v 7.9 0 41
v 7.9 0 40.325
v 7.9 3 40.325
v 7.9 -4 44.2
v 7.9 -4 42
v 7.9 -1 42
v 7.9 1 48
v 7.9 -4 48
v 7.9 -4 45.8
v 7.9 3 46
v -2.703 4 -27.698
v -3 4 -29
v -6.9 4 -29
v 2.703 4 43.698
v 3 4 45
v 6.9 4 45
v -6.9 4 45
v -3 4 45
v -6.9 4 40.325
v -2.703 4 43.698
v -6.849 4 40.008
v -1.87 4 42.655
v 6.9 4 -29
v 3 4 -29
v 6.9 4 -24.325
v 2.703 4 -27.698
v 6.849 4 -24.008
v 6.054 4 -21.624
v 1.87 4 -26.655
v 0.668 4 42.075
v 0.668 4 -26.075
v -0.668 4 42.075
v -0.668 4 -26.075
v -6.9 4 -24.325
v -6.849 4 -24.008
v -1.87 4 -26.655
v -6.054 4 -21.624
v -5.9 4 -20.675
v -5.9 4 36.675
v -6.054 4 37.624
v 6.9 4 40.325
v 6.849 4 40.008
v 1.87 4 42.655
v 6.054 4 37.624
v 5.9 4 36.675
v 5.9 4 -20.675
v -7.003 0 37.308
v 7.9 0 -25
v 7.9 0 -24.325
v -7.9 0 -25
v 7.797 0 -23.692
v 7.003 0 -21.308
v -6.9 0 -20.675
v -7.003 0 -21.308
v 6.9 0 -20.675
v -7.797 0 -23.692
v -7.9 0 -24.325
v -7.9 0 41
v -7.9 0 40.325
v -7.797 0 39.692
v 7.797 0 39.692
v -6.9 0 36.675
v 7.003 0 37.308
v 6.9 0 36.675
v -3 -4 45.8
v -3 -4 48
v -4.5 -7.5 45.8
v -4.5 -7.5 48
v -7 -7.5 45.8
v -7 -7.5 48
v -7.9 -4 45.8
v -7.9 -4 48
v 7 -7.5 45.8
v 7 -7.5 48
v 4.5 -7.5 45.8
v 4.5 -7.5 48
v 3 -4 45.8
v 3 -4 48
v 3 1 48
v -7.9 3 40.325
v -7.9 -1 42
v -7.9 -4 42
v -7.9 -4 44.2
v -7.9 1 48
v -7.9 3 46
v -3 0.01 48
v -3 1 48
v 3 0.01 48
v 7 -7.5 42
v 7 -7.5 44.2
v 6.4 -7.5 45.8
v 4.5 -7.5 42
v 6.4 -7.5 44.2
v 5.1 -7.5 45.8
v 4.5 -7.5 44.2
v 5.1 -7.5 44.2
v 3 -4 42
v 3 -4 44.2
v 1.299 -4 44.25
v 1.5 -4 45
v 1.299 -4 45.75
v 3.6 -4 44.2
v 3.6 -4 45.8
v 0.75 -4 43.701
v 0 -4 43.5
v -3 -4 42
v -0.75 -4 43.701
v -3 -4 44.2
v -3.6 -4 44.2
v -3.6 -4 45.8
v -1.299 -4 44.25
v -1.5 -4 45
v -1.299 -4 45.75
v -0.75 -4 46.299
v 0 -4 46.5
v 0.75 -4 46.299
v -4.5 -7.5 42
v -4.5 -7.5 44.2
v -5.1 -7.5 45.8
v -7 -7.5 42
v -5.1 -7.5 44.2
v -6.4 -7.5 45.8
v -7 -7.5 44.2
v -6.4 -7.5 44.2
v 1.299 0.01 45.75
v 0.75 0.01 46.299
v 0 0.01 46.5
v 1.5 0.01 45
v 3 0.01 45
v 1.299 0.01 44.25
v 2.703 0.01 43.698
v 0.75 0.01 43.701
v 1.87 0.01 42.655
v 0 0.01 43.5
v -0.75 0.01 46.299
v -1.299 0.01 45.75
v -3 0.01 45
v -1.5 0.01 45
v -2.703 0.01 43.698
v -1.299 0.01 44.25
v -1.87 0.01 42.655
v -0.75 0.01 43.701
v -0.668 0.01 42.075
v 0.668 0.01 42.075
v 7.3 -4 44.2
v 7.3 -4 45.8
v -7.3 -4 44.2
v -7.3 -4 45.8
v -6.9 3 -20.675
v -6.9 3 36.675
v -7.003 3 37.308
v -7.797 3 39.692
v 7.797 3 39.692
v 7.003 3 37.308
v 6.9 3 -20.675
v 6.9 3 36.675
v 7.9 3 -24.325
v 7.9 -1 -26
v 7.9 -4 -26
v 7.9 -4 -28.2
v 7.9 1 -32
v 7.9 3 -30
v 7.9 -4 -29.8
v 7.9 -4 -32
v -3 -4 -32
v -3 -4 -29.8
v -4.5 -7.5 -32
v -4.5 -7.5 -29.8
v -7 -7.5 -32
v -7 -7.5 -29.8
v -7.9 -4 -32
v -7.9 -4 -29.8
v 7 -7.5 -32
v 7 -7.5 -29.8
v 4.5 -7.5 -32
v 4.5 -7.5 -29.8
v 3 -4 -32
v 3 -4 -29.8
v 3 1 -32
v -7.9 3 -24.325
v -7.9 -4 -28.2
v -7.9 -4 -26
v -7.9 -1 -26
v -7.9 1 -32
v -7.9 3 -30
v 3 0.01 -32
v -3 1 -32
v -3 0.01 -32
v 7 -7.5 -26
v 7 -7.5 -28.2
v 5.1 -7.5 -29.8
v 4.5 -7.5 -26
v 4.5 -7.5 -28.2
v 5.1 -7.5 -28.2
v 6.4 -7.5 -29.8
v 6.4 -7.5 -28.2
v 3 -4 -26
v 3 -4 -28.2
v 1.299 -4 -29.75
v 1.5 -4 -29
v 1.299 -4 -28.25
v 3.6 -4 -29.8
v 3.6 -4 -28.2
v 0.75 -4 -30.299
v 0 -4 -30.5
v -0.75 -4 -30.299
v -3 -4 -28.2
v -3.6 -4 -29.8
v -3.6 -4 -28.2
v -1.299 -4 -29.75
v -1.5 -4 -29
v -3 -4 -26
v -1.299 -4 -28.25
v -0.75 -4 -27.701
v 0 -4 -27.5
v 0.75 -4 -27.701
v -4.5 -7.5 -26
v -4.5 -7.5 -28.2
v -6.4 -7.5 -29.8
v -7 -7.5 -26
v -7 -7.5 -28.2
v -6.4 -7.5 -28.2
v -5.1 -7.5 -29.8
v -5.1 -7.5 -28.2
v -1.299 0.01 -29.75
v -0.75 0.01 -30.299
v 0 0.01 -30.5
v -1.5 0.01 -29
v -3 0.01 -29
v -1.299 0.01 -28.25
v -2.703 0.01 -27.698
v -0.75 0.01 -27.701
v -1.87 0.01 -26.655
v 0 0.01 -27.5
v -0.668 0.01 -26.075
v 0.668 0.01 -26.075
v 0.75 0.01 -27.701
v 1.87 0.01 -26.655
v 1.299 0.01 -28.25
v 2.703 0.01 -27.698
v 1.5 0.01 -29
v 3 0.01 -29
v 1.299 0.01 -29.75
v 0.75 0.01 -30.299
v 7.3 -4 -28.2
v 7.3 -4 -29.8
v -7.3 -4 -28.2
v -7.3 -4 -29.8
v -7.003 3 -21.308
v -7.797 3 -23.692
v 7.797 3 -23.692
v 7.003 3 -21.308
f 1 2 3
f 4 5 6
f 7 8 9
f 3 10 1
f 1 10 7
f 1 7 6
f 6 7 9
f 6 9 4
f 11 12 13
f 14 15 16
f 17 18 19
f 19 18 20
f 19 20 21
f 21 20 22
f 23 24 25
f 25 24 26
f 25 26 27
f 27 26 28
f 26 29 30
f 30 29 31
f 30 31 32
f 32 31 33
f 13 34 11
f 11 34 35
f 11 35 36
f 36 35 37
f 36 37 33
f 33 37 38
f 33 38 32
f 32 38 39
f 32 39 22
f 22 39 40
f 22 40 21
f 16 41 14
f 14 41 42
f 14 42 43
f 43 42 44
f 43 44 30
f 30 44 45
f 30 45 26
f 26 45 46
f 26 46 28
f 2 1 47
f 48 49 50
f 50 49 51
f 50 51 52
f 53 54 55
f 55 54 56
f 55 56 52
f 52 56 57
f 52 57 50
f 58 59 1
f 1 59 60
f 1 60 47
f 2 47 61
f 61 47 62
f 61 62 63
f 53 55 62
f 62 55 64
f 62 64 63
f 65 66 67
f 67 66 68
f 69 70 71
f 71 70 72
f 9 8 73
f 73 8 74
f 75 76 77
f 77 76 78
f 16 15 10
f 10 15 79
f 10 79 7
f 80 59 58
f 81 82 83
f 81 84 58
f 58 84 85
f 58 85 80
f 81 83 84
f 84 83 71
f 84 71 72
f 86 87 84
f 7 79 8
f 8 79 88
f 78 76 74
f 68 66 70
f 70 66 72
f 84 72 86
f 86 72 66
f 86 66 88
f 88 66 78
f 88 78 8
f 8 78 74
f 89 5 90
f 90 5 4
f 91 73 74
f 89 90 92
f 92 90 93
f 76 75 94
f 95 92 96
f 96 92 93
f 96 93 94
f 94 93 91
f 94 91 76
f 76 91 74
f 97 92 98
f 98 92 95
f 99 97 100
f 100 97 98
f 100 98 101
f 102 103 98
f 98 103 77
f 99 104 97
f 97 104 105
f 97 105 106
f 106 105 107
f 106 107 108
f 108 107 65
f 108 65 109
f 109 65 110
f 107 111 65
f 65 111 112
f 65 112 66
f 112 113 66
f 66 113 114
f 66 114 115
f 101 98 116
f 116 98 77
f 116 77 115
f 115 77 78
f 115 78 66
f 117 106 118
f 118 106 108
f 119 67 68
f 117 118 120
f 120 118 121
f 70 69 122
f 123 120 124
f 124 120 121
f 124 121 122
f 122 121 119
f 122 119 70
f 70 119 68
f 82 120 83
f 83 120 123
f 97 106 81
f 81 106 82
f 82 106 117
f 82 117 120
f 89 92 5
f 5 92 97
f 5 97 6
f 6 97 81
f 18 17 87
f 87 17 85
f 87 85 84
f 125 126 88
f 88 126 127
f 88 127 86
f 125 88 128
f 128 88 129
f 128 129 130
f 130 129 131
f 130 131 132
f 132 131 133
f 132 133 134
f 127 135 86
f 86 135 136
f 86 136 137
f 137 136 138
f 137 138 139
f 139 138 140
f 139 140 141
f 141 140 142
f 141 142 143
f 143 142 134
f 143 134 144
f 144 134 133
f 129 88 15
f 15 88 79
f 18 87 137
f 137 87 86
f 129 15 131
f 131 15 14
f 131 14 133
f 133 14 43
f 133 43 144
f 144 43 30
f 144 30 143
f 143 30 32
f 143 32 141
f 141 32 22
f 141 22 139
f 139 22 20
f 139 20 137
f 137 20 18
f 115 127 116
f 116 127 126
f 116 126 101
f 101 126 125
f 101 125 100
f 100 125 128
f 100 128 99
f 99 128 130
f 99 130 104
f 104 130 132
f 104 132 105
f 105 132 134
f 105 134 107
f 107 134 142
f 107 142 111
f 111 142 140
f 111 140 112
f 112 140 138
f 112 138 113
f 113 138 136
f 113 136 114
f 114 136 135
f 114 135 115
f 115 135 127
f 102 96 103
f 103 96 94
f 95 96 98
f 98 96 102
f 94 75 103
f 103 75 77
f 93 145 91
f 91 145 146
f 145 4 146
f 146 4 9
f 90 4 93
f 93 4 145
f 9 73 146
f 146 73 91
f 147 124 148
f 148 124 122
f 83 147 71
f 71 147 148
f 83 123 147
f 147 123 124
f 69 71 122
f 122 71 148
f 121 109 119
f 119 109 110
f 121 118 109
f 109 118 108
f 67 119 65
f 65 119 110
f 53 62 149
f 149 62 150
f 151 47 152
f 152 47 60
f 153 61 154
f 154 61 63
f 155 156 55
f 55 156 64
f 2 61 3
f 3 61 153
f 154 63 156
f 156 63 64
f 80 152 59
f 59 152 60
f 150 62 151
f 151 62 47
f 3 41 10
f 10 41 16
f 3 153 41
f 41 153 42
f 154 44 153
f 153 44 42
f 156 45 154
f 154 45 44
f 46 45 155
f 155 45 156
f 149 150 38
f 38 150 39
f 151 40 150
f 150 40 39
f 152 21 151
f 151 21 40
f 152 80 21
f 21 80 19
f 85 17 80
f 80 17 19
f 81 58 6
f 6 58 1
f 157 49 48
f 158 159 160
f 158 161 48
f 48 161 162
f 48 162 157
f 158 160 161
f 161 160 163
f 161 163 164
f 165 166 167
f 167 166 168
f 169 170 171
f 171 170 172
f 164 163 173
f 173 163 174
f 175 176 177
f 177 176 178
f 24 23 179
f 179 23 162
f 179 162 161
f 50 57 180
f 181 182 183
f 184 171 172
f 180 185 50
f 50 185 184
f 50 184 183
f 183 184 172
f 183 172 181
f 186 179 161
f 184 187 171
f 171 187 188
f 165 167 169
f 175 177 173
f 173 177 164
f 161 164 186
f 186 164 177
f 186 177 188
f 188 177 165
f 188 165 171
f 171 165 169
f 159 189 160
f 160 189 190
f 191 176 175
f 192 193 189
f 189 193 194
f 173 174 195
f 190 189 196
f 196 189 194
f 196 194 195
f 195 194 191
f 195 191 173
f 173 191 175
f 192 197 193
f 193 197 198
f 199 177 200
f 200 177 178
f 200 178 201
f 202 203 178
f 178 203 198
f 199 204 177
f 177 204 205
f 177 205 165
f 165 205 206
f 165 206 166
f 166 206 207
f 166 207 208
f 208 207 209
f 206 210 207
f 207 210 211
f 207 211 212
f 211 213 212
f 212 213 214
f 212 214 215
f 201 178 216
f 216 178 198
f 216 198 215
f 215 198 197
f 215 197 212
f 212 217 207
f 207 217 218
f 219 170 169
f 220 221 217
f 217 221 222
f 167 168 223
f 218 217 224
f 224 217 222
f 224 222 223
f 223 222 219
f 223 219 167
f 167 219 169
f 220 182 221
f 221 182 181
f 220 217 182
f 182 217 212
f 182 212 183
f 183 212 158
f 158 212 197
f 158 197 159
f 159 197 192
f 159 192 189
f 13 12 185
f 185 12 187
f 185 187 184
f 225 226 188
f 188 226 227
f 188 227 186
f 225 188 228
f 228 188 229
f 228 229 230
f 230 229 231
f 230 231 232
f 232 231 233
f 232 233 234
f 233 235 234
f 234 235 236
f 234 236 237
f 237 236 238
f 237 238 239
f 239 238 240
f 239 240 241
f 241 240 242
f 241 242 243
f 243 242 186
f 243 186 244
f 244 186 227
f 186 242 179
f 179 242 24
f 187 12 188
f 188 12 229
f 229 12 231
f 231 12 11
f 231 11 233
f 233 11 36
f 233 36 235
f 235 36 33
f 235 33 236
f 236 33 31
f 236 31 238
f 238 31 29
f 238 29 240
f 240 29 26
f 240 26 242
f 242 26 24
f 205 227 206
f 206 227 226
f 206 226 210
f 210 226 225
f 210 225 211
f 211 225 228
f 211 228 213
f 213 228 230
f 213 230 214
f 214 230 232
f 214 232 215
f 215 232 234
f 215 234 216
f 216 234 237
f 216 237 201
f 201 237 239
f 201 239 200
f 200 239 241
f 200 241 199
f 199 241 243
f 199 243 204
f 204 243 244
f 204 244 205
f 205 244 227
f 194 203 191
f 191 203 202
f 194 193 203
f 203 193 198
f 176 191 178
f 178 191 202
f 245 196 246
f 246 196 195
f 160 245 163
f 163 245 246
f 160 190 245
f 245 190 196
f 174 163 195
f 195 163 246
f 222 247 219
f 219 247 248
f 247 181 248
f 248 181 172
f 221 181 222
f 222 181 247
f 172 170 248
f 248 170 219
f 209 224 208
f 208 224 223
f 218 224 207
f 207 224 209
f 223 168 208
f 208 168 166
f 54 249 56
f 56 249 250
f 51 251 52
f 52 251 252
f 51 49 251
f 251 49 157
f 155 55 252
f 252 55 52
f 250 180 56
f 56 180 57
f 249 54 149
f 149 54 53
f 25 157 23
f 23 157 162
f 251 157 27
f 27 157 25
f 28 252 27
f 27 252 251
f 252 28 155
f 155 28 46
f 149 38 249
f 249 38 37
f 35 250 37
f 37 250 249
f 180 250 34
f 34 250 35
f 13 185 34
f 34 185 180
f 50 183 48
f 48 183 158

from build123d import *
from build123d.topology import SkipClean

# Parameters (mm, degrees)
EXTRUDE_1_DEPTH     = 4
EXTRUDE_3_DEPTH     = 6
CHAMFER_1_SIZE      = 3
CUT_EXTRUDE_2_DEPTH = 3.99
CUT_EXTRUDE_3_REACH = 51.222
SKETCH_7_R          = 1.5
SKETCH_8_R          = 6
EXTRUDE_4_DEPTH     = 1
FILLET_1_R          = 0.5
SKETCH_9_R          = 5
CUT_EXTRUDE_4_DEPTH = 3
SKETCH_10_R         = 3.55
CUT_EXTRUDE_5_DEPTH = 3.6
CUT_EXTRUDE_6_DEPTH = 0.8
CUT_EXTRUDE_7_DEPTH = 50.986598204
FILLET_2_R          = 2
CHAMFER_2_SIZE      = 1


with BuildPart() as part:
    # ｽｹｯﾁ1 → ﾎﾞｽ - 押し出し1 (new body)
    with BuildSketch(Plane(origin=(0, 0, 0), x_dir=(1, 0, 0), z_dir=(0, 1, 0))):
        with BuildLine():
            Line((-7.9, 0), (-7.9, -48))
            Line((-7.9, -48), (7.9, -48))
            Line((7.9, -48), (7.9, 0))
            ThreePointArc((7.9, 0), (0, 7.9), (-7.9, 0))
        make_face()
    extrude(amount=EXTRUDE_1_DEPTH)

    # ｽｹｯﾁ4 → ﾎﾞｽ - 押し出し3 (add)
    with BuildSketch(Plane.XY.offset(48)):
        Polygon((-7, -7.5), (-4.5, -7.5), (-3, -4), (3, -4), (4.5, -7.5), (7, -7.5), (7.9, -4), (7.9, 0), (-7.9, 0), (-7.9, -4), align=None)
    extrude(amount=-EXTRUDE_3_DEPTH)

    # 面取り1
    chamfer_1_edges = [part.edges().sort_by_distance(p)[0] for p in [
        (0, 4, 48),
    ]]
    chamfer(chamfer_1_edges, length=CHAMFER_1_SIZE)

    # ｽｹｯﾁ6 → ｶｯﾄ - 押し出し2 (cut)
    with BuildSketch(Plane(origin=(0, 4, 0), x_dir=(1, 0, 0), z_dir=(0, 1, 0))):
        with BuildLine():
            Line((-3, -45), (-3, -49))
            Line((-3, -49), (3, -49))
            Line((3, -49), (3, -45))
            ThreePointArc((3, -45), (0, -42), (-3, -45))
        make_face()
    extrude(amount=-CUT_EXTRUDE_2_DEPTH, mode=Mode.SUBTRACT)

    # ｽｹｯﾁ7 → ｶｯﾄ - 押し出し3 (cut, up to next)
    with BuildSketch(Plane(origin=(0, 0.01, 0), x_dir=(1, 0, 0), z_dir=(0, 1, 0)), mode=Mode.PRIVATE) as cut_extrude_3_sk1:
        with Locations(Location((0, -45, 0), (0, 0, 270))):
            Circle(SKETCH_7_R)
    cut_extrude_3_tool1 = extrude(cut_extrude_3_sk1.sketch, amount=-CUT_EXTRUDE_3_REACH, mode=Mode.PRIVATE) & part.part
    add(cut_extrude_3_tool1.solids().sort_by_distance((0, 0.01, 45))[0], mode=Mode.SUBTRACT)

    # ｽｹｯﾁ8 → ﾎﾞｽ - 押し出し4 (add)
    with BuildSketch(Plane.XZ):
        with Locations(Location((0, 0, 0), (0, 0, 90))):
            Circle(SKETCH_8_R)
    extrude(amount=EXTRUDE_4_DEPTH)

    # ﾌｨﾚｯﾄ1
    fillet_1_edges = [part.edges().sort_by_distance(p)[0] for p in [
        (0, 0, -6),
    ]]
    fillet(fillet_1_edges, radius=FILLET_1_R)

    # ｽｹｯﾁ9 → ｶｯﾄ - 押し出し4 (cut)
    with BuildSketch(Plane(origin=(0, 4, 0), x_dir=(1, 0, 0), z_dir=(0, 1, 0))):
        with Locations(Location((0, 0, 0), (0, 0, 270))):
            Circle(SKETCH_9_R)
    extrude(amount=-CUT_EXTRUDE_4_DEPTH, mode=Mode.SUBTRACT)

    # ｽｹｯﾁ10 → ｶｯﾄ - 押し出し5 (cut)
    with BuildSketch(Plane(origin=(0, 1, 0), x_dir=(1, 0, 0), z_dir=(0, 1, 0))):
        with Locations(Location((0, 0, 0), (0, 0, 270))):
            Circle(SKETCH_10_R)
    extrude(amount=-CUT_EXTRUDE_5_DEPTH, mode=Mode.SUBTRACT)

    # ｽｹｯﾁ11 → ｶｯﾄ - 押し出し6 (cut, symmetric)
    with BuildSketch(Plane.XY.offset(45)):
        Polygon((3, -4), (4.5, -7.5), (5.1, -7.5), (3.6, -4), align=None)
        Polygon((6.4, -7.5), (7, -7.5), (7.9, -4), (7.3, -4), align=None)
    cut_extrude_6 = extrude(amount=CUT_EXTRUDE_6_DEPTH, both=True, mode=Mode.SUBTRACT)

    # ﾐﾗｰ1: ｶｯﾄ - 押し出し6 across plane
    add(cut_extrude_6.mirror(Plane(origin=(0, 0, 0), x_dir=(0, 0, 1), z_dir=(1, 0, 0))), mode=Mode.SUBTRACT)

    # ｽｹｯﾁ12 → ｶｯﾄ - 押し出し7 (cut, through all)
    with SkipClean():  # the faces are left unmerged after this step: merging them gives an invalid solid
        with BuildSketch(Plane(origin=(0, 4, 0), x_dir=(1, 0, 0), z_dir=(0, 1, 0))):
            with BuildLine():
                Line((-7.9, 0), (-7.9, -40))
                Line((-7.9, -40), (-6.9, -37))
                Line((-6.9, -37), (-6.9, -3.847076812))
                ThreePointArc((-6.9, -3.847076812), (-7.645913941, -1.987460691), (-7.9, 0))
            make_face()
        cut_extrude_7 = extrude(amount=-CUT_EXTRUDE_7_DEPTH, mode=Mode.SUBTRACT)

    # ﾐﾗｰ2: ｶｯﾄ - 押し出し7 across plane
    with SkipClean():  # the faces are left unmerged after this step: merging them gives an invalid solid
        add(cut_extrude_7.mirror(Plane(origin=(0, 0, 0), x_dir=(0, 0, 1), z_dir=(1, 0, 0))), mode=Mode.SUBTRACT)

    # ﾌｨﾚｯﾄ2
    fillet_2_edges = [part.edges().sort_by_distance(p)[0] for p in [
        (-6.9, 2, 3.847076812),
        (-6.9, 2, 37),
        (-7.9, 2, 40),
        (6.9, 2, 3.847076812),
        (7.9, 2, 40),
        (6.9, 2, 37),
    ]]
    fillet(fillet_2_edges, radius=FILLET_2_R)

    # 面取り2
    chamfer_2_edges = [part.edges().sort_by_distance(p)[0] for p in [
        (-7.9, 4, 42.66227766),
        (0, 4, -7.9),
        (7.9, 4, 42.66227766),
        (0, 0, 42),
        (-7.874174915, 4, 40.004190834),
        (-7.4, 4, 38.5),
        (-6.925825085, 4, 36.995809166),
        (-6.9, 4, 20.505670679),
        (-6.951159371, 4, 3.886430103),
        (6.951159371, 4, 3.886430103),
        (6.9, 4, 20.505670679),
        (6.925825085, 4, 36.995809166),
        (7.4, 4, 38.5),
        (7.874174915, 4, 40.004190834),
    ]]
    chamfer(chamfer_2_edges, length=CHAMFER_2_SIZE)

    # Surface Cut 1
    split(bisect_by=Plane.XY.offset(8), keep=Keep.TOP)

    # ﾐﾗｰ4: part across plane


with BuildPart() as part_1:
    add(part.part)
    add(part.part.mirror(Plane.XY.offset(8)))


solid = part_1.part
